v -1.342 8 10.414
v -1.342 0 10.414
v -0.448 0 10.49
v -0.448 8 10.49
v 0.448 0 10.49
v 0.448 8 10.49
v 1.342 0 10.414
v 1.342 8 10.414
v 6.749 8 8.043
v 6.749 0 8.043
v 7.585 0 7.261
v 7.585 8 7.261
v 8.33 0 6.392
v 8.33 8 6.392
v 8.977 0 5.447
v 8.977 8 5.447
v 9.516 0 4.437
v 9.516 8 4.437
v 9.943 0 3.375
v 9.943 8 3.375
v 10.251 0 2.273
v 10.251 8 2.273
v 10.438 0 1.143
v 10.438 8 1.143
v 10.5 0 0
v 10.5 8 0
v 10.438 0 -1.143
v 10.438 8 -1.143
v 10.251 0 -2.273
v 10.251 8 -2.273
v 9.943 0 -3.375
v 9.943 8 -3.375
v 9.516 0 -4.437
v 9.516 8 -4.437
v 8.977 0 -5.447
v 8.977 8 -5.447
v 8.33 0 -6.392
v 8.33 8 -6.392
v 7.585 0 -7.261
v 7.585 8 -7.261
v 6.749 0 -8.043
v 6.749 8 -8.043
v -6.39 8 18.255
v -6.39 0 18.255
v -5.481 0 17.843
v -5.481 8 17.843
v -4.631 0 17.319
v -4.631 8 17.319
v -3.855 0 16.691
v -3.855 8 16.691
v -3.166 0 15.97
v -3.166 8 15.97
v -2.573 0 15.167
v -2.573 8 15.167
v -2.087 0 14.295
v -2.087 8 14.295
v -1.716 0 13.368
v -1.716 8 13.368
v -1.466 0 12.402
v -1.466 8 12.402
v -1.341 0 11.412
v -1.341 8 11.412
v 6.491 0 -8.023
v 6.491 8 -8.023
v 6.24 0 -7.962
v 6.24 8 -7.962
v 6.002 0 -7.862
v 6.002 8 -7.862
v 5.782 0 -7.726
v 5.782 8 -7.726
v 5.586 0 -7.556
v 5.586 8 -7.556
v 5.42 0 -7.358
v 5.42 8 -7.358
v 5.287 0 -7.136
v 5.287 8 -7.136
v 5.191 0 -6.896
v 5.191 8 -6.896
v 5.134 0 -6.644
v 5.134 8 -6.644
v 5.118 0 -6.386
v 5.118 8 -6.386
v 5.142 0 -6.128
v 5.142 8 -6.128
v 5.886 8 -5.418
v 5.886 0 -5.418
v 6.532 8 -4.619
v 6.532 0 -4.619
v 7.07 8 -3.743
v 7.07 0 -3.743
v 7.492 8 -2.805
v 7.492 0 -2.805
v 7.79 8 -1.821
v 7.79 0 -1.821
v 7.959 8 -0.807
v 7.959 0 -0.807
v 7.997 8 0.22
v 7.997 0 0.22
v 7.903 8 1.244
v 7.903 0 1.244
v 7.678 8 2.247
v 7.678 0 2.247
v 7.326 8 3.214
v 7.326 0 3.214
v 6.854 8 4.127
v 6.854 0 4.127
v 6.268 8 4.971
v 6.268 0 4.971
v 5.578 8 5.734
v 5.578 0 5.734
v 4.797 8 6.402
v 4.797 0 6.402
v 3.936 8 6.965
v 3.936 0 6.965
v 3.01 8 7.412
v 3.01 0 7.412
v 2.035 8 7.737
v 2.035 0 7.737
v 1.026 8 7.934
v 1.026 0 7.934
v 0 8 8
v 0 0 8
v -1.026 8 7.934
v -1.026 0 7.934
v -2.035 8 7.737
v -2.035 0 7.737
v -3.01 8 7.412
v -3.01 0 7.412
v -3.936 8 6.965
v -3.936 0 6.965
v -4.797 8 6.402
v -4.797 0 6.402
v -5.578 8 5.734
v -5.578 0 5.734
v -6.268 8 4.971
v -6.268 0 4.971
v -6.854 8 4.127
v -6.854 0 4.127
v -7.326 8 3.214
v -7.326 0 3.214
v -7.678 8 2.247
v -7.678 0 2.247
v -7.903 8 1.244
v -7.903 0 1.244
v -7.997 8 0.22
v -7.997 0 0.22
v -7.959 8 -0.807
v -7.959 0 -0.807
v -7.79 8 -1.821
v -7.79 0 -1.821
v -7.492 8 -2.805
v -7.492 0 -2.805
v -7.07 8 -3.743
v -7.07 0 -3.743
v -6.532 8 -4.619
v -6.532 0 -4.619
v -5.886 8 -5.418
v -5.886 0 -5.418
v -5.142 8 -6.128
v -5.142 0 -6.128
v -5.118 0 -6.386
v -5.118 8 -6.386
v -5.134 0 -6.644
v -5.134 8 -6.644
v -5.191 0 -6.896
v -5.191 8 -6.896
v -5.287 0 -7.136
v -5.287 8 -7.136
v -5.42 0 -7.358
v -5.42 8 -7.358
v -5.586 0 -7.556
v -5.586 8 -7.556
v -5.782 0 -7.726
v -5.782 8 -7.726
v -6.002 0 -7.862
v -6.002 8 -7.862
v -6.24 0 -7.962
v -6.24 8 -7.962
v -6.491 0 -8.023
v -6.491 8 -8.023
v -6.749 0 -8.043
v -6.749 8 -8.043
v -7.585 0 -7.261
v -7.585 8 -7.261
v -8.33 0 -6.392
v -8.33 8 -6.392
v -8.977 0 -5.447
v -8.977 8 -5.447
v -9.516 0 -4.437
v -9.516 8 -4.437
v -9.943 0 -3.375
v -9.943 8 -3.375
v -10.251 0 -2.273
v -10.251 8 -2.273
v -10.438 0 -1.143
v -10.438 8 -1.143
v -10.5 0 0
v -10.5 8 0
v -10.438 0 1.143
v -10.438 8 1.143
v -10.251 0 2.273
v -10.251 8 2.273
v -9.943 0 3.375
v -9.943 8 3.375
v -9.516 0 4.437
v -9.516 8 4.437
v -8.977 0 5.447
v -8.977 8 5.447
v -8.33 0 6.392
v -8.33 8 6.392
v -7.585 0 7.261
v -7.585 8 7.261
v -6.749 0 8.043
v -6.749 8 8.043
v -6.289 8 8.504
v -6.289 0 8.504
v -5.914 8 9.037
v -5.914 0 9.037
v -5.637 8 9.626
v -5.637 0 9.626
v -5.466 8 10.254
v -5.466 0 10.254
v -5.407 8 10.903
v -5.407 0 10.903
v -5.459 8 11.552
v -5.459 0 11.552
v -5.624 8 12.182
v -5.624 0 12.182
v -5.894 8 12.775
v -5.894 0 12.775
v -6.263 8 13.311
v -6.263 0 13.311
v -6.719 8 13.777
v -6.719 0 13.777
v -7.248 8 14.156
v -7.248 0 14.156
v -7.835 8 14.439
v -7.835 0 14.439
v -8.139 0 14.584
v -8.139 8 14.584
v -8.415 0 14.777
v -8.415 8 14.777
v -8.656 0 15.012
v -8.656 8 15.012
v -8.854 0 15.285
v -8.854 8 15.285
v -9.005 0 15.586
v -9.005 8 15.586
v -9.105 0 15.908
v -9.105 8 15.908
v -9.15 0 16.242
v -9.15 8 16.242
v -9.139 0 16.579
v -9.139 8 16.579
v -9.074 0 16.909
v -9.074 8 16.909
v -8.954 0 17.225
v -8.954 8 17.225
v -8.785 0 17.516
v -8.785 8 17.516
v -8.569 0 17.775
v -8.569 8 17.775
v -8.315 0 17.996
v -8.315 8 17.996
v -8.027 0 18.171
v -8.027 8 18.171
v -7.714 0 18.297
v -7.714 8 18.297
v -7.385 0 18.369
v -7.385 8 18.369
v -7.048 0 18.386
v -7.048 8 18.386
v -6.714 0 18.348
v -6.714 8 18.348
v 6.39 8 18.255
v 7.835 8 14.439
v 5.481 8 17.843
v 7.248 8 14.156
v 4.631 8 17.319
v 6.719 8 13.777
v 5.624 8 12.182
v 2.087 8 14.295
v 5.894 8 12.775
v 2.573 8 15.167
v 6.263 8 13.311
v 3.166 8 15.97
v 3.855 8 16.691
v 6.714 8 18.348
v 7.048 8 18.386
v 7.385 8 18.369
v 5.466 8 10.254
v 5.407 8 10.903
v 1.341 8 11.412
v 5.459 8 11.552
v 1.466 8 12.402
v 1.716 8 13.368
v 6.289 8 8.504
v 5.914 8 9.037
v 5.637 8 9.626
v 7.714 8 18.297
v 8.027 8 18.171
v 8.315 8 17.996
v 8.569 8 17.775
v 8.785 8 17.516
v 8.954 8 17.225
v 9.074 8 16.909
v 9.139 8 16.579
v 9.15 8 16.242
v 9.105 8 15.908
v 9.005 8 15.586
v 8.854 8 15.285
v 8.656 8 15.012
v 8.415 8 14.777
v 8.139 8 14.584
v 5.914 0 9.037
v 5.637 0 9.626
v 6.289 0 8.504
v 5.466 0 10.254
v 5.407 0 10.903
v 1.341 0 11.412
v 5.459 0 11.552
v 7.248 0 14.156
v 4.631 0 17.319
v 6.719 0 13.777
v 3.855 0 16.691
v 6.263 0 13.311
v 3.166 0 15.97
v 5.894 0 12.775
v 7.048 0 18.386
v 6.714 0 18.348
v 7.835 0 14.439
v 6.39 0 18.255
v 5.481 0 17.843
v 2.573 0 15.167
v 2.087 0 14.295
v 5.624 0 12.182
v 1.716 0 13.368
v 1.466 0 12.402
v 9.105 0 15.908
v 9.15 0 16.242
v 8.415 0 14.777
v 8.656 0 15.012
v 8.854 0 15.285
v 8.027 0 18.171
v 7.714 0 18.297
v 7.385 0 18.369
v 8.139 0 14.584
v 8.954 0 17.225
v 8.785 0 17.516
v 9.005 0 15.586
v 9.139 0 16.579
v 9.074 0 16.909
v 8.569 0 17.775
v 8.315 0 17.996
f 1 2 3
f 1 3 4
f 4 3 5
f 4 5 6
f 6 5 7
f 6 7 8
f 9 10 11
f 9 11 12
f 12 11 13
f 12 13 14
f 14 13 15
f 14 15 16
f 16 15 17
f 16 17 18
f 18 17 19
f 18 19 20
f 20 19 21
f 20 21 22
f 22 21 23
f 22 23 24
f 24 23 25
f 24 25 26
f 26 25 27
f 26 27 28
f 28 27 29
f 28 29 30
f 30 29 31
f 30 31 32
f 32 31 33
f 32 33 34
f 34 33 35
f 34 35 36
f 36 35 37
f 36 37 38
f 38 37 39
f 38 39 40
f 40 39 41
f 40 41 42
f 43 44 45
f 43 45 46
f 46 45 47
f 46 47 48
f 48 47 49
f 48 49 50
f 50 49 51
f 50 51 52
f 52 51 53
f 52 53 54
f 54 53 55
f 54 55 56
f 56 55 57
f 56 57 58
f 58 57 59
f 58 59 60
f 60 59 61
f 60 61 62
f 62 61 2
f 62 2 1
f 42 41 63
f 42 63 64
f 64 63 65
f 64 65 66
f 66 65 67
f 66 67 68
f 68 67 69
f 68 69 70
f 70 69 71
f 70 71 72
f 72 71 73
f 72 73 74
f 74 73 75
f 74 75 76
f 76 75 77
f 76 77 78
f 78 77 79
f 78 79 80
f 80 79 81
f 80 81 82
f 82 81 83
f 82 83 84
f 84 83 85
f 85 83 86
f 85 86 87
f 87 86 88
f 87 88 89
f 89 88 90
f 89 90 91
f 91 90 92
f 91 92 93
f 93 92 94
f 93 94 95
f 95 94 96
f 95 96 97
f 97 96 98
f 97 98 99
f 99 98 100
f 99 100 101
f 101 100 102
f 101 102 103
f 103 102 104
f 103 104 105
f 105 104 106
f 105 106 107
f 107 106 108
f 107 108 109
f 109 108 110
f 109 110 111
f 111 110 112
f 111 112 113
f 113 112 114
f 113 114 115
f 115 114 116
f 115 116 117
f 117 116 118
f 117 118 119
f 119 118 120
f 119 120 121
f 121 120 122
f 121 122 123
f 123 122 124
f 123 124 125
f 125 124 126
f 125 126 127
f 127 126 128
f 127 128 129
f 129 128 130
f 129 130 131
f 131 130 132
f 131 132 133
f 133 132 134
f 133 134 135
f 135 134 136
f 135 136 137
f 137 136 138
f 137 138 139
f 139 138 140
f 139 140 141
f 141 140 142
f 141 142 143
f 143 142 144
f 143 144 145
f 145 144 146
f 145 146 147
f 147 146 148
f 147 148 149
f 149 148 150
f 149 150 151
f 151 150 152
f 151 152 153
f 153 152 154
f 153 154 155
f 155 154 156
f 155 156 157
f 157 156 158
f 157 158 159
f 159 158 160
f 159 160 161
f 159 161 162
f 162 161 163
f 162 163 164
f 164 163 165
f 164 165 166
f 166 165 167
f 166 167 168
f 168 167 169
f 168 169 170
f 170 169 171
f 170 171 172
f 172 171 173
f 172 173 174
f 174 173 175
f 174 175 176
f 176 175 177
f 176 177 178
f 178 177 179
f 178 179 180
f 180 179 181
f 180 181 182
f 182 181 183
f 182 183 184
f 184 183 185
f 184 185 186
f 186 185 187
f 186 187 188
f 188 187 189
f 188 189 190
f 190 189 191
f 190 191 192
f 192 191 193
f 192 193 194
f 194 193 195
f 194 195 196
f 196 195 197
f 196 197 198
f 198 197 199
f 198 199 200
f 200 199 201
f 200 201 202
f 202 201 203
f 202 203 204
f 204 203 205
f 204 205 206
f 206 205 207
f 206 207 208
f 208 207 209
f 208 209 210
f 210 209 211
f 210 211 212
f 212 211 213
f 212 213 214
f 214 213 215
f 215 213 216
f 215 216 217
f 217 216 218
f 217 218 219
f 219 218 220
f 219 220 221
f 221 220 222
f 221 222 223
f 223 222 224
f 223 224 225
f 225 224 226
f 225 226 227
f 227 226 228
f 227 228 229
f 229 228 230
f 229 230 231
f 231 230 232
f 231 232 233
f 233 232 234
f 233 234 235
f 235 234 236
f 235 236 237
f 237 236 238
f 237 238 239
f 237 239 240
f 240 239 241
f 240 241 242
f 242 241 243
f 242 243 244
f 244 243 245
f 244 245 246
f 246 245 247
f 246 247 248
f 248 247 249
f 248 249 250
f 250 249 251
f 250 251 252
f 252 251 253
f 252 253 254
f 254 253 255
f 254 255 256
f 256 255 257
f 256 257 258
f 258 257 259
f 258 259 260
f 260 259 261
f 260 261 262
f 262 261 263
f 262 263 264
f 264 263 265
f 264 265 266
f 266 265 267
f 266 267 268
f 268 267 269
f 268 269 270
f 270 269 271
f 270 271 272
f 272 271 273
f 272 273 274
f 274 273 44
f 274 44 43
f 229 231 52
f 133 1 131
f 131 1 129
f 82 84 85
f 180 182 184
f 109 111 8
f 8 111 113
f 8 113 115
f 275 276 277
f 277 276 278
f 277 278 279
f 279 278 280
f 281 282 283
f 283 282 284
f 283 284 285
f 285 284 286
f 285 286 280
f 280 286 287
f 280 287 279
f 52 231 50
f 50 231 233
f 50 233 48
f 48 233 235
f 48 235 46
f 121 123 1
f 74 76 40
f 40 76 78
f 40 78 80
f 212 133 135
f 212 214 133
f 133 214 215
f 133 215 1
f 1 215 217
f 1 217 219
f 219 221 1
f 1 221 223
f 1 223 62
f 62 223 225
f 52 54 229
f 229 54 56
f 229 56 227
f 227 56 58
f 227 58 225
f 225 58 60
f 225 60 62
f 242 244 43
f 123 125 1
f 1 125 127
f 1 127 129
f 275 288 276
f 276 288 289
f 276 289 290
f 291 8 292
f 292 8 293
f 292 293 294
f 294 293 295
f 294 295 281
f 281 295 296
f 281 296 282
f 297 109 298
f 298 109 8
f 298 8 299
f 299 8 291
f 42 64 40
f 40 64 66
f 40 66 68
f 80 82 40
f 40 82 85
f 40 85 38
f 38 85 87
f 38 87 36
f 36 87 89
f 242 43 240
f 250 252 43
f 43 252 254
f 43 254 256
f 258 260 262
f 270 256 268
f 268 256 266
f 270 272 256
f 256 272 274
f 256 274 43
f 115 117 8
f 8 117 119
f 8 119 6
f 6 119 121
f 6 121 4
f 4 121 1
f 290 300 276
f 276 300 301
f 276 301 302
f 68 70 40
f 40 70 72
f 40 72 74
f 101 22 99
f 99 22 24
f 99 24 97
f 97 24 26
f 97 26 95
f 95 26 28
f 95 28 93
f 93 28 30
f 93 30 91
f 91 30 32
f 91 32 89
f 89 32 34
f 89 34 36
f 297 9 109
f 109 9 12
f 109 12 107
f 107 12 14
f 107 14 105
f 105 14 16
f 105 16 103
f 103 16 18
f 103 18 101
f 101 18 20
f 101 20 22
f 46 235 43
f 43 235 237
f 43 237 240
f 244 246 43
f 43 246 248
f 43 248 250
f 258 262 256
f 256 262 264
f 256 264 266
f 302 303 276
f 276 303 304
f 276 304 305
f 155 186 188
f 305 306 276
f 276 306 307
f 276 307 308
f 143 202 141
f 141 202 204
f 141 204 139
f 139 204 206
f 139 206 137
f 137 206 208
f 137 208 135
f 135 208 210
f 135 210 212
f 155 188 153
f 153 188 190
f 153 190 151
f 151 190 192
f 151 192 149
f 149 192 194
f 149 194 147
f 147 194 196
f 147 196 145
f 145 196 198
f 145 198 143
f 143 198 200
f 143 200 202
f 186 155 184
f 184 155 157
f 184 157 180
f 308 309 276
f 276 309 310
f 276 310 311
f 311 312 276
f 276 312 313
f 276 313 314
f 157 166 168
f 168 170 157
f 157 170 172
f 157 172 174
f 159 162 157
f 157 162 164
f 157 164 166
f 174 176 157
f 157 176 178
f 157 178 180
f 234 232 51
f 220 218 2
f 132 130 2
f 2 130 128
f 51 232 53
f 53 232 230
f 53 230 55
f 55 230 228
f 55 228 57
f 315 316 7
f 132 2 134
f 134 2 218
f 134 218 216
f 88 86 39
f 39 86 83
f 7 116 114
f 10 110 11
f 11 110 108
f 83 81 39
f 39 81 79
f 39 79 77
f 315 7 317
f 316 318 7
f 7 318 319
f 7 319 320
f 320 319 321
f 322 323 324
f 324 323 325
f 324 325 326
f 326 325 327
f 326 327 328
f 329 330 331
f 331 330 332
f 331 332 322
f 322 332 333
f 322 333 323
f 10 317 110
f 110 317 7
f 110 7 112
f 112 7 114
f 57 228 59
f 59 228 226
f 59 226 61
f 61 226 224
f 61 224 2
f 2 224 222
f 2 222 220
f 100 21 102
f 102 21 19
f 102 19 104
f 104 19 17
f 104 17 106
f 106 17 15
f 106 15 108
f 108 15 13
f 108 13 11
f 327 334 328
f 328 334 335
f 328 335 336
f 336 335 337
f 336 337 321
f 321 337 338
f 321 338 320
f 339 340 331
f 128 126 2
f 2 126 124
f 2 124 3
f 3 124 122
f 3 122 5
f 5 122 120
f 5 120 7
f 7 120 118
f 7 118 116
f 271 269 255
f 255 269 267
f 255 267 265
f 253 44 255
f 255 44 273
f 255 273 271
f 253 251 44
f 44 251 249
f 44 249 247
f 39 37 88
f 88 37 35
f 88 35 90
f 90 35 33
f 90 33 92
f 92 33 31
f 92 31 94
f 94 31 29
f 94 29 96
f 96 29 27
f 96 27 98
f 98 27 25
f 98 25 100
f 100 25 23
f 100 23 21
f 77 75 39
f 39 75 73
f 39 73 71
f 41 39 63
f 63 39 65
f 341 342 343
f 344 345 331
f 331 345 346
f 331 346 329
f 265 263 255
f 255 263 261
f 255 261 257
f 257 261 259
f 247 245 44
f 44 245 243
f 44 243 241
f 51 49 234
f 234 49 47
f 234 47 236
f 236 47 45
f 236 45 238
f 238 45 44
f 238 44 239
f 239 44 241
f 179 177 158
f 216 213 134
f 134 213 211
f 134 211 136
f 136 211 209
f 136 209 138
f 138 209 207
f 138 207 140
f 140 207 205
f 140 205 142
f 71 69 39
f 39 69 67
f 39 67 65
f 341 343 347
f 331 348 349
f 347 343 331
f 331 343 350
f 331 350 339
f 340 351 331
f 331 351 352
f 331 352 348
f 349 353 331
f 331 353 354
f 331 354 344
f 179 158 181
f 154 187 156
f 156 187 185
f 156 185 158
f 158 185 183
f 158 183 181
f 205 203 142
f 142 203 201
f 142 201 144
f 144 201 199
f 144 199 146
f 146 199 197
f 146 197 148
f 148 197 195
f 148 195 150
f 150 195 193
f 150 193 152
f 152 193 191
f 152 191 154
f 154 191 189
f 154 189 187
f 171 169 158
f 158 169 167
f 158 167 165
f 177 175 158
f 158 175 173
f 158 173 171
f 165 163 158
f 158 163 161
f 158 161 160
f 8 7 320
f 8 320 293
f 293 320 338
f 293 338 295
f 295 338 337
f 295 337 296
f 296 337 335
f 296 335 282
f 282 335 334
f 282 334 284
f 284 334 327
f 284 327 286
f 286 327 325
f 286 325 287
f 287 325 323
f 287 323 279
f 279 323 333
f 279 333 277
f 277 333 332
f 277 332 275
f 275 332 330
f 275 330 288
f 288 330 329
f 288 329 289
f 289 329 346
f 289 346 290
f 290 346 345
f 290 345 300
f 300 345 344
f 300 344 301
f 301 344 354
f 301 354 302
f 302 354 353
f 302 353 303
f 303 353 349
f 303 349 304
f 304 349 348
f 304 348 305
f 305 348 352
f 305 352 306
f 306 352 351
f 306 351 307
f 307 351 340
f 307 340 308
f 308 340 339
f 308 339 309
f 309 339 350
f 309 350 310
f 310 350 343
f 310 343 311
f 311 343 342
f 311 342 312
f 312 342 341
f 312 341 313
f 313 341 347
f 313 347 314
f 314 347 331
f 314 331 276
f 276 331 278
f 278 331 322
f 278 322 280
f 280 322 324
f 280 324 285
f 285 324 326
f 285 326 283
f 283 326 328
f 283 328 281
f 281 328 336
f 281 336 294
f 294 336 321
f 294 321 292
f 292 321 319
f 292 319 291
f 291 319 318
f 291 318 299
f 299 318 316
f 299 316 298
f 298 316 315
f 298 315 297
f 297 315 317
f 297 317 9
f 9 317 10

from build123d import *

# Parameters (mm, degrees)
BOSS_EXTRU_1_DEPTH = 8


with BuildPart() as part:
    # Esquisse4 → Boss.-Extru.1 (new body)
    with BuildSketch(Plane(origin=(0, 0, 0), x_dir=(1, 0, 0), z_dir=(0, 1, 0))):
        with BuildLine():
            ThreePointArc((-1.341955193, -10.413892464), (-1.552117835, -9.051281003), (-1.997724586, -7.746553845))
            ThreePointArc((-1.997724586, -7.746553845), (-7.802132308, -1.768256613), (-5.142300877, 6.128355545))
            ThreePointArc((-5.142300877, 6.128355545), (-5.499269902, 7.46058208), (-6.749269902, 8.043466653))
            ThreePointArc((-6.749269902, 8.043466653), (-10.5, 0), (-6.749269902, -8.043466653))
            ThreePointArc((-6.749269902, -8.043466653), (-4.215650663, -9.616563289), (-1.341955193, -10.413892464))
        make_face()
        with BuildLine():
            ThreePointArc((6.749269902, 8.043466653), (5.499269902, 7.46058208), (5.142300877, 6.128355545))
            ThreePointArc((5.142300877, 6.128355545), (7.11339354, -3.660550825), (-1.997724586, -7.746553845))
            ThreePointArc((-1.997724586, -7.746553845), (-1.552117835, -9.051281003), (-1.341955193, -10.413892464))
            ThreePointArc((-1.341955193, -10.413892464), (9.616563289, -4.215650663), (6.749269902, 8.043466653))
        make_face()
        with BuildLine():
            ThreePointArc((-6.389571855, -18.255279028), (-2.573158, -15.166655065), (-1.341955193, -10.413892464))
            ThreePointArc((-1.341955193, -10.413892464), (-4.215650663, -9.616563289), (-6.749269902, -8.043466653))
            ThreePointArc((-6.749269902, -8.043466653), (-5.459487684, -11.551992452), (-7.834566209, -14.438563679))
            ThreePointArc((-7.834566209, -14.438563679), (-9.020426707, -17.06941853), (-6.389571855, -18.255279028))
        make_face()
    boss_extru_1 = extrude(amount=BOSS_EXTRU_1_DEPTH)

    # Symétrie1: Boss.-Extru.1 across plane
    add(boss_extru_1.mirror(Plane(origin=(0, 0, 0), x_dir=(0, 0, 1), z_dir=(1, 0, 0))))


solid = part.part
